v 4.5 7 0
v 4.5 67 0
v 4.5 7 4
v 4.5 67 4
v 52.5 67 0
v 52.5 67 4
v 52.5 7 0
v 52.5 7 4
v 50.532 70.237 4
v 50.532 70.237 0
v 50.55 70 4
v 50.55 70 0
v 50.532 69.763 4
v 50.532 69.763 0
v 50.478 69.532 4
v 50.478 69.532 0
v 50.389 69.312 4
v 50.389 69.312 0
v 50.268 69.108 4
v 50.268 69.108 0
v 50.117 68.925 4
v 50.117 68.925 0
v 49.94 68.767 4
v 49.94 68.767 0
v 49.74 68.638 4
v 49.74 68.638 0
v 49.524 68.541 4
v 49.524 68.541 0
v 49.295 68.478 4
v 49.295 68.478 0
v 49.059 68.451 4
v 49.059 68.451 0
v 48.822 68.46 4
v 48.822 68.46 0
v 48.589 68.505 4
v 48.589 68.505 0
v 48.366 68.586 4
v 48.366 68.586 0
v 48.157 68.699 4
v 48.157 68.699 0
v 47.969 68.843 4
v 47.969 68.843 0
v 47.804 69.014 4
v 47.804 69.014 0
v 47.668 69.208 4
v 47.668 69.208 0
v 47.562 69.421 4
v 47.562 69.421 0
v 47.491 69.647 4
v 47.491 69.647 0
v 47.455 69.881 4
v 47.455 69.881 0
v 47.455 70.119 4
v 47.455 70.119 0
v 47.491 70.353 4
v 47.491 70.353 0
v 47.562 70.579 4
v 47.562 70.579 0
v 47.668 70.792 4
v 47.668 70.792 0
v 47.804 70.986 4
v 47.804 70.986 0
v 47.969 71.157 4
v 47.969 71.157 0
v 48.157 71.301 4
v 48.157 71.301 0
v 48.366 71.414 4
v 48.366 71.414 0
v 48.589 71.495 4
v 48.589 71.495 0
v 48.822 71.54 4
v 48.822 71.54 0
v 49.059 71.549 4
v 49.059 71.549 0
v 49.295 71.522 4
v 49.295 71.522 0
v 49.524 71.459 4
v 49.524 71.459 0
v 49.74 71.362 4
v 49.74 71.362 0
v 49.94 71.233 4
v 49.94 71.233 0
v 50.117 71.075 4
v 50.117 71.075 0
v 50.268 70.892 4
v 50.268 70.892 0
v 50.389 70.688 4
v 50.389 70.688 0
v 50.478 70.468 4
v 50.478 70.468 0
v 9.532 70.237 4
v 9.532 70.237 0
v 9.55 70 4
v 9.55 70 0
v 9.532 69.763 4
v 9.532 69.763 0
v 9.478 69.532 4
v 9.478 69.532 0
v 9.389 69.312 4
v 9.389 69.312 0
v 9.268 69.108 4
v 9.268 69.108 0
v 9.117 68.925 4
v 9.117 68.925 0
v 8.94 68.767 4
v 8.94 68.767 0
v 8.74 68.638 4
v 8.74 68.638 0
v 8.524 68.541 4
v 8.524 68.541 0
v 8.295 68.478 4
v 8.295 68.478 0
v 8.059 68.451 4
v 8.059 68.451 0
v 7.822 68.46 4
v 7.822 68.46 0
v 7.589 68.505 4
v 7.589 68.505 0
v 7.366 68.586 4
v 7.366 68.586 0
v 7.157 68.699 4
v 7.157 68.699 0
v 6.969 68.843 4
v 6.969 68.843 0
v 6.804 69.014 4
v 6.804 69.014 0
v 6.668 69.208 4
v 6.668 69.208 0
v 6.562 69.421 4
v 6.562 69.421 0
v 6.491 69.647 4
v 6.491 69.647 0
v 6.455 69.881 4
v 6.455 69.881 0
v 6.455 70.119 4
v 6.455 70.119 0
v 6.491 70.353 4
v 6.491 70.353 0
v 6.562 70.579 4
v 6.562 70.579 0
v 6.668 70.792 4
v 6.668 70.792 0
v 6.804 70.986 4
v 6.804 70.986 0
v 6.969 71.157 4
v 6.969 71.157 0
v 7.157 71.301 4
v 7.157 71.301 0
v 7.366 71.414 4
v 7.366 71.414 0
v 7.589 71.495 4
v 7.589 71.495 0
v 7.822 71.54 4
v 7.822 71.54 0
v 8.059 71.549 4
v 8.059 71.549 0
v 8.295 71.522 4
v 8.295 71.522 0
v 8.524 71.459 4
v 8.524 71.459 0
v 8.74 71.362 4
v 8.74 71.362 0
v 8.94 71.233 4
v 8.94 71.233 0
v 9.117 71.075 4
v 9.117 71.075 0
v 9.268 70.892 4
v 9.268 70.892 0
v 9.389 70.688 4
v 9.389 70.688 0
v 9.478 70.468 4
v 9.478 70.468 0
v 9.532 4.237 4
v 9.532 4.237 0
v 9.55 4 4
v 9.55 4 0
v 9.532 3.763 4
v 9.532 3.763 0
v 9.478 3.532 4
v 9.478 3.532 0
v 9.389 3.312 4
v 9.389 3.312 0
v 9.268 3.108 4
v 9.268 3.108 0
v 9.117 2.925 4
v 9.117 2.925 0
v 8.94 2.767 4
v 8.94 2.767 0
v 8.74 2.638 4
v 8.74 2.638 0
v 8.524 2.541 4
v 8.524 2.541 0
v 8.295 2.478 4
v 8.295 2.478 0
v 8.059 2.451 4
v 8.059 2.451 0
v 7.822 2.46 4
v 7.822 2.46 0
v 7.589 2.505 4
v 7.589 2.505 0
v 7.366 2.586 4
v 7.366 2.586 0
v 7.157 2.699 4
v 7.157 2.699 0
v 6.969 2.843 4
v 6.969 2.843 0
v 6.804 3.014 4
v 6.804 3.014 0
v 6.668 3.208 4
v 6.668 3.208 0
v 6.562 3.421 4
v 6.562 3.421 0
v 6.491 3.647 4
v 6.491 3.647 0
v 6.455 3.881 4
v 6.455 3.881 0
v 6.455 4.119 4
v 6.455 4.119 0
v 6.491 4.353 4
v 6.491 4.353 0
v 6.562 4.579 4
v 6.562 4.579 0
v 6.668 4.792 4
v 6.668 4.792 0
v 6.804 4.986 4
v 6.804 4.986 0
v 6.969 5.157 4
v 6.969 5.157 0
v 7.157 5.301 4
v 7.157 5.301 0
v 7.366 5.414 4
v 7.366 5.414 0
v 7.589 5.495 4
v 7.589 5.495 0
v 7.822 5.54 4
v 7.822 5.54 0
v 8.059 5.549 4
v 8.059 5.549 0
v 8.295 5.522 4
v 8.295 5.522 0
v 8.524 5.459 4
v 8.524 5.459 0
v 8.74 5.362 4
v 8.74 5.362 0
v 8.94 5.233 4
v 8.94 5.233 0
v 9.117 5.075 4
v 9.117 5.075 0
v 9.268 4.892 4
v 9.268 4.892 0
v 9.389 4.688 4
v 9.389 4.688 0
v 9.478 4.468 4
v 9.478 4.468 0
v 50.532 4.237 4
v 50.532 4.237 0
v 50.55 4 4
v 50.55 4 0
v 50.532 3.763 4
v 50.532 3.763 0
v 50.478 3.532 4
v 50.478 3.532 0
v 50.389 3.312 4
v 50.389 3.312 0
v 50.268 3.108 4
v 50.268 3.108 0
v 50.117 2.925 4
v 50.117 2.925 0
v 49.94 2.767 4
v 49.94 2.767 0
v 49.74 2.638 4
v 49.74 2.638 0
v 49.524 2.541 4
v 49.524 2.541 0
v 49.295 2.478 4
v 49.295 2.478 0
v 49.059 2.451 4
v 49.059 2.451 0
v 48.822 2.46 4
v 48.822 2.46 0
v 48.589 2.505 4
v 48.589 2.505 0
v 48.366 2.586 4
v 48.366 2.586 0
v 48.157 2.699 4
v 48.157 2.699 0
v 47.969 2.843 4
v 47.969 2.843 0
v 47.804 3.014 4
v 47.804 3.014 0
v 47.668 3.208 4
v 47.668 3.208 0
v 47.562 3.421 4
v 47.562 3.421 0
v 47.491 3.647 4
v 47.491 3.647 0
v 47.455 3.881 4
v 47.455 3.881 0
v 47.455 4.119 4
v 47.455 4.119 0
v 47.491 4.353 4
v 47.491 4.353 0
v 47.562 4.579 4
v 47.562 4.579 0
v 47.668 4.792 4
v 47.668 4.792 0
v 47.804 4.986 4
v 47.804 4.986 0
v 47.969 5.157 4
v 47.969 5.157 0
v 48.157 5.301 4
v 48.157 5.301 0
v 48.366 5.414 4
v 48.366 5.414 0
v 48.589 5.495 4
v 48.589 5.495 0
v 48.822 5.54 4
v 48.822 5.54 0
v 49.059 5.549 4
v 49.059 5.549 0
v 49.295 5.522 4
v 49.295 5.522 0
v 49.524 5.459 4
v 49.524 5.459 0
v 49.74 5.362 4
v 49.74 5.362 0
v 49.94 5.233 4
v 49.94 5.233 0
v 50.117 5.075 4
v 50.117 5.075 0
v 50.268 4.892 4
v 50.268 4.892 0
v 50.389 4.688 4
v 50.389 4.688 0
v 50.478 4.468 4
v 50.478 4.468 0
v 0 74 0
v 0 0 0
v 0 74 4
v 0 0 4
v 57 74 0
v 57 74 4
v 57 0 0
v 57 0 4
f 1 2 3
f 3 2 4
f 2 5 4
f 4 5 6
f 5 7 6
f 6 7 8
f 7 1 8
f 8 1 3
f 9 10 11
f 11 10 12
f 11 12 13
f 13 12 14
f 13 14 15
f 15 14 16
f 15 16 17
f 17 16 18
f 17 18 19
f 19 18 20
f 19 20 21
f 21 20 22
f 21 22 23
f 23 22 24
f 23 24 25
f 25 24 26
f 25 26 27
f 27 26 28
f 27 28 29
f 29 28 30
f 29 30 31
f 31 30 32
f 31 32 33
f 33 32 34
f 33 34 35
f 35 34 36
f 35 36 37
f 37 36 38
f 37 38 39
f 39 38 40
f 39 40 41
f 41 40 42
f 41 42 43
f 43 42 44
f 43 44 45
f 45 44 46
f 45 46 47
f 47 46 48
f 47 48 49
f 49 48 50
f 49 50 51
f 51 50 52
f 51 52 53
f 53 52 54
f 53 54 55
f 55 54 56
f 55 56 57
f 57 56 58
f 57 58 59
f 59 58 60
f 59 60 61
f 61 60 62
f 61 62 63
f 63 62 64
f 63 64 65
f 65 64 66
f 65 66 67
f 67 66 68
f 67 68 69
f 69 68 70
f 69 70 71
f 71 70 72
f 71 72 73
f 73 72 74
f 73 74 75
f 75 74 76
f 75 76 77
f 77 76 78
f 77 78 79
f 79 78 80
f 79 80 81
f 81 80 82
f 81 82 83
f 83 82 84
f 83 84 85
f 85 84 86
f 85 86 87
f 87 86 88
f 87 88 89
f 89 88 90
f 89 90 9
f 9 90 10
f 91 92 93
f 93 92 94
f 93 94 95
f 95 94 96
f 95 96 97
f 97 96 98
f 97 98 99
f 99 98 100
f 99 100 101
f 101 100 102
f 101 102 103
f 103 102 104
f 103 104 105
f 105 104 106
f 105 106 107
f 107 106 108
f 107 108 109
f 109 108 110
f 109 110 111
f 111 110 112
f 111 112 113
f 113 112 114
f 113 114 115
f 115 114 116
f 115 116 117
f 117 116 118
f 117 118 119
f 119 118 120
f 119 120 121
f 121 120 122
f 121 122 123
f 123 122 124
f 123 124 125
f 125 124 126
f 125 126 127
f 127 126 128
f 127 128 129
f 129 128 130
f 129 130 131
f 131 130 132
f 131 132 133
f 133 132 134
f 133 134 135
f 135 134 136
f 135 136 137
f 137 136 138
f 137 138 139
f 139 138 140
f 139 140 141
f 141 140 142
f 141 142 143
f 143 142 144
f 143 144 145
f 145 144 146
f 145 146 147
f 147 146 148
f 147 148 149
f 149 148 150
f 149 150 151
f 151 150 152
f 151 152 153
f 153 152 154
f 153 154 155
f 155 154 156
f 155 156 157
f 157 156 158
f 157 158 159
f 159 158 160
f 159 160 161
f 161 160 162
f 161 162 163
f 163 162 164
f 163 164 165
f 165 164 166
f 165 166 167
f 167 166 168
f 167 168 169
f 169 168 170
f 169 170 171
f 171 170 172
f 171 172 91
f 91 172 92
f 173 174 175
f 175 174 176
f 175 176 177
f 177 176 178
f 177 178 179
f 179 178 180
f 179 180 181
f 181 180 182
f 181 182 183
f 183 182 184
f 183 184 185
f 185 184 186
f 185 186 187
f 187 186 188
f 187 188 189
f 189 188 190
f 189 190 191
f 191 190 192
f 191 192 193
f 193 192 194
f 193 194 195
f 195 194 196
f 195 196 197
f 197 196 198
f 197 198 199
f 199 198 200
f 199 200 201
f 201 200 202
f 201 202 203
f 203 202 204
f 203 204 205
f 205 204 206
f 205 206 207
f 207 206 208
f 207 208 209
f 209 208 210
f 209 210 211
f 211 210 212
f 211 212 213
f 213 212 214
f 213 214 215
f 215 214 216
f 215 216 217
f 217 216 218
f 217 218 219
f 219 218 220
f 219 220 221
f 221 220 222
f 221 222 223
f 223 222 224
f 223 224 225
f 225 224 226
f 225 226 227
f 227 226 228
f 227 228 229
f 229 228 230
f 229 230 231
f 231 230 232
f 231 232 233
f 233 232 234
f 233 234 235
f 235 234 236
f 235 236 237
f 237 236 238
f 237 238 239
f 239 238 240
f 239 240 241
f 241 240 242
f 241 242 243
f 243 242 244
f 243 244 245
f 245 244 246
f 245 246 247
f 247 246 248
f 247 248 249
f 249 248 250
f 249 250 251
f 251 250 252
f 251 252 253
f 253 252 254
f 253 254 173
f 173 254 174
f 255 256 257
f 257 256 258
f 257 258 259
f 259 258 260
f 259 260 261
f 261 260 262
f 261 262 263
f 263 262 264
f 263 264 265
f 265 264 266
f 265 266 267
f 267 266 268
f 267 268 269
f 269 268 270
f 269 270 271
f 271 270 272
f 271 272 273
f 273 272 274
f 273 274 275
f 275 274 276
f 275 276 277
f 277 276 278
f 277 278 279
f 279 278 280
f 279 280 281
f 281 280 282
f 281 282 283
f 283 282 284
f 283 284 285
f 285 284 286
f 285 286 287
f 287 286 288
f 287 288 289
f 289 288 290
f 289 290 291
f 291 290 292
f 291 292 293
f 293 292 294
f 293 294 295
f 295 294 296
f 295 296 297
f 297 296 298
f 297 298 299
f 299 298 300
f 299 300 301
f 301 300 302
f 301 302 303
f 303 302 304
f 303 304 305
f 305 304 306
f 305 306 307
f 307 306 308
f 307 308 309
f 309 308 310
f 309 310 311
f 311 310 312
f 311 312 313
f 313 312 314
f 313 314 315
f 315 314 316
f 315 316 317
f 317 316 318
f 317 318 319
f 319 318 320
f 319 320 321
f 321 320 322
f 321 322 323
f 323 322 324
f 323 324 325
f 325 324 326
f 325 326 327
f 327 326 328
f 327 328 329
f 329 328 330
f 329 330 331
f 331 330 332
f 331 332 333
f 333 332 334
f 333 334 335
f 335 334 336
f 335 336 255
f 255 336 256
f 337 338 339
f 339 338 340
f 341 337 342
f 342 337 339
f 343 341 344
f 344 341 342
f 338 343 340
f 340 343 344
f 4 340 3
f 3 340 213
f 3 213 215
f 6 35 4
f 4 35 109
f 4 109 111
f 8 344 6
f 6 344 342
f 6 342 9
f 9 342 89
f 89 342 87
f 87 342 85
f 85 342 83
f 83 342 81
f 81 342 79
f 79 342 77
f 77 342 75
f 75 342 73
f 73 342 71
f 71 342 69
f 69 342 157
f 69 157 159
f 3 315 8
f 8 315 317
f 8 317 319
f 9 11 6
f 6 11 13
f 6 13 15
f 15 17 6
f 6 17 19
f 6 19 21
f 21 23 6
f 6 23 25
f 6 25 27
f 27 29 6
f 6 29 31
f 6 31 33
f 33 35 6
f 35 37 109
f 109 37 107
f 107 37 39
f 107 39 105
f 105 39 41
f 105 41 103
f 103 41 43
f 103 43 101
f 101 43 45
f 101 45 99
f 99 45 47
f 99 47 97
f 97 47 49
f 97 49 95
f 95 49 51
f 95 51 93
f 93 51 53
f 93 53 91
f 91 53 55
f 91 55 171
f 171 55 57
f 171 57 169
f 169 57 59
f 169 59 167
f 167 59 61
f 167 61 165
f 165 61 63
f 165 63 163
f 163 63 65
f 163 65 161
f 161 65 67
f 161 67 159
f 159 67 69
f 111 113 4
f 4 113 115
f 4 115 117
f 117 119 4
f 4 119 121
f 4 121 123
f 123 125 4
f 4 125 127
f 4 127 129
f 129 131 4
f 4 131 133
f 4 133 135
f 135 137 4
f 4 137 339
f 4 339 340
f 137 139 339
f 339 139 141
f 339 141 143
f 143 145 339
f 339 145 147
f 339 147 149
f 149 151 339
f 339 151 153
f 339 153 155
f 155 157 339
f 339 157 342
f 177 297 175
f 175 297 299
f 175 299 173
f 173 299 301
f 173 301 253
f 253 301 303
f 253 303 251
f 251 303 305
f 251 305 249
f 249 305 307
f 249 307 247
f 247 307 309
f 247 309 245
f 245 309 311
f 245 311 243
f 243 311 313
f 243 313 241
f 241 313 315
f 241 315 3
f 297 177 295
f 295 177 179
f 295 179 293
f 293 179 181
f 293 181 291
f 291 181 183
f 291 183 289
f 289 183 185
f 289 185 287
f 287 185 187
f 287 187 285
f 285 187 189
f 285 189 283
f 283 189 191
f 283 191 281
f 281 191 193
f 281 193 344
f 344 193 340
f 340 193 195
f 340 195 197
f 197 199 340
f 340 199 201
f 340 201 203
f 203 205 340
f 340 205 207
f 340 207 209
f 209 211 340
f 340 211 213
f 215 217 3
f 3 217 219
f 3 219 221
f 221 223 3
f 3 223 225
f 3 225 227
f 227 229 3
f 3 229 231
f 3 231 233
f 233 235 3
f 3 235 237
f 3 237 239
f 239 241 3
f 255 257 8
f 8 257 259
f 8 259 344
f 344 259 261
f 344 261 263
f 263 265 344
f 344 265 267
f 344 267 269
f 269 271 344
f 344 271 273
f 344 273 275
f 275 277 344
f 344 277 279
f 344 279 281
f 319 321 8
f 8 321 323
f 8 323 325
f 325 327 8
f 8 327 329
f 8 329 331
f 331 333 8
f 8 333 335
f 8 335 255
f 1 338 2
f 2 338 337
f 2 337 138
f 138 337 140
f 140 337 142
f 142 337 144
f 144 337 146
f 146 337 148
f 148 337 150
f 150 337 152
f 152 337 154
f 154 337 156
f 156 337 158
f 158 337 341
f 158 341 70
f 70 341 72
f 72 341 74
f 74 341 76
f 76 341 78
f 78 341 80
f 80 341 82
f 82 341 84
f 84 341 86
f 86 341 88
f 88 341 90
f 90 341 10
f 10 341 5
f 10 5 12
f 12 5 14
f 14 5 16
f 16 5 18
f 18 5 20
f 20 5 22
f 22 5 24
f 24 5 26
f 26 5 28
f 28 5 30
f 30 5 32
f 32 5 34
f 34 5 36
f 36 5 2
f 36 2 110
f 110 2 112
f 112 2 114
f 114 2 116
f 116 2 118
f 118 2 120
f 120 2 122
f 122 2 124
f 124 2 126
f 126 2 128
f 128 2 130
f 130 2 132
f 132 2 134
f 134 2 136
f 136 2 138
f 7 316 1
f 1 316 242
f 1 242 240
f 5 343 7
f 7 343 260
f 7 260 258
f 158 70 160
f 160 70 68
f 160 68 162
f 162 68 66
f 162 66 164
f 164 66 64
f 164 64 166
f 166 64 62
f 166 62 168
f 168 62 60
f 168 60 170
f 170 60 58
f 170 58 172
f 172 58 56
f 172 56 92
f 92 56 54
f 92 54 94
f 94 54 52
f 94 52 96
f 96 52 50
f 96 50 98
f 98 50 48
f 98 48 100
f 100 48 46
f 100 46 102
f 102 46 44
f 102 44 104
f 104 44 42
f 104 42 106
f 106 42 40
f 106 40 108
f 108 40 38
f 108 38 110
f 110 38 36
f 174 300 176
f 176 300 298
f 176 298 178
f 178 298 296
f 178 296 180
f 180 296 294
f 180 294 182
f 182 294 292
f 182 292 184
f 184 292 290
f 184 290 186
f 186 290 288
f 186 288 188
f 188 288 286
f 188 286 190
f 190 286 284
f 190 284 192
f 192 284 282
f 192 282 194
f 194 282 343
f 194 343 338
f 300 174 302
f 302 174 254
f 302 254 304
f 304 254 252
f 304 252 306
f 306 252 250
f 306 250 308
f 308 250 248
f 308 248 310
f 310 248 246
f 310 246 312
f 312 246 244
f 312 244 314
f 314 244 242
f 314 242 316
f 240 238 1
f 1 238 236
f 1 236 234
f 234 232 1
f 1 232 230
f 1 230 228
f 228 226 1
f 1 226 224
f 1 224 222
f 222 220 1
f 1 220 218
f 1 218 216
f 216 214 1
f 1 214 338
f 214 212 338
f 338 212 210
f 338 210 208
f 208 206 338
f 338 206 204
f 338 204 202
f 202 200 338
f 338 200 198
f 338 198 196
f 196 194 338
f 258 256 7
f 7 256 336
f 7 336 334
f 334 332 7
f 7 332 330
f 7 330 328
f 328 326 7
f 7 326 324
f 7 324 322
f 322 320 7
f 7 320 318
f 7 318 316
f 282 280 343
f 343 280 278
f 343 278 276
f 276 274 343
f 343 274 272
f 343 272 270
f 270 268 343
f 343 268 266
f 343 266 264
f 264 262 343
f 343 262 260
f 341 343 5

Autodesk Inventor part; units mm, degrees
ref_plane "YZ Plane" through (0, 0, 0) normal (1, 0, 0) x (0, 1, 0)
ref_plane "XZ Plane" through (0, 0, 0) normal (0, 1, 0) x (-1, 0, 0)
ref_plane "XY Plane" through (0, 0, 0) normal (0, 0, 1) x (1, 0, 0)
sketch "Szkic1" plane through (0, 0, 0) normal (0, 0, 1) x (1, 0, 0)
  line L0 (0, 0) -> (57, 0)
  line L1 (57, 0) -> (57, 74)
  line L2 (57, 74) -> (0, 74)
  line L3 (0, 74) -> (0, 0)
  line L4 (28.5, 74) -> (28.5, 67) construction
  line L5 (0, 37) -> (4.5, 37) construction
  line L6 (28.5, 0) -> (28.5, 7) construction
  line L7 (57, 37) -> (52.5, 37) construction
  line L8 (4.5, 7) -> (52.5, 7)
  line L9 (52.5, 7) -> (52.5, 67)
  line L10 (52.5, 67) -> (4.5, 67)
  line L11 (4.5, 67) -> (4.5, 7)
  line L12 (57, 0) -> (49, 0) construction
  line L13 (0, 0) -> (8, 0) construction
  line L14 (8, 0) -> (8, 4) construction
  line L15 (49, 0) -> (49, 4) construction
  circle A0 centre (49, 4) radius 1.55
  circle A1 centre (8, 4) radius 1.55
  line L16 (57, 74) -> (49, 74) construction
  line L17 (49, 74) -> (49, 70) construction
  line L18 (0, 74) -> (8, 74) construction
  line L19 (8, 74) -> (8, 70) construction
  circle A2 centre (8, 70) radius 1.55
  circle A3 centre (49, 70) radius 1.55
  dimension "d0" = 57
  dimension "d1" = 74
  dimension "d2" = 7
  dimension "d3" = 4.5
  dimension "d4" = 7
  dimension "d5" = 4.5
  dimension "d6" = 8
  dimension "d7" = 8
  dimension "d8" = 4
  dimension "d9" = 3.1
  dimension "d10" = 3.1
  dimension "d11" = 4
  dimension "d12" = 3.1
  dimension "d13" = 3.1
extrude "Wyciągnięcie proste1" add sketch "Szkic1" along normal blind 4
properties part number "Uzupelnienie_podwozia"
